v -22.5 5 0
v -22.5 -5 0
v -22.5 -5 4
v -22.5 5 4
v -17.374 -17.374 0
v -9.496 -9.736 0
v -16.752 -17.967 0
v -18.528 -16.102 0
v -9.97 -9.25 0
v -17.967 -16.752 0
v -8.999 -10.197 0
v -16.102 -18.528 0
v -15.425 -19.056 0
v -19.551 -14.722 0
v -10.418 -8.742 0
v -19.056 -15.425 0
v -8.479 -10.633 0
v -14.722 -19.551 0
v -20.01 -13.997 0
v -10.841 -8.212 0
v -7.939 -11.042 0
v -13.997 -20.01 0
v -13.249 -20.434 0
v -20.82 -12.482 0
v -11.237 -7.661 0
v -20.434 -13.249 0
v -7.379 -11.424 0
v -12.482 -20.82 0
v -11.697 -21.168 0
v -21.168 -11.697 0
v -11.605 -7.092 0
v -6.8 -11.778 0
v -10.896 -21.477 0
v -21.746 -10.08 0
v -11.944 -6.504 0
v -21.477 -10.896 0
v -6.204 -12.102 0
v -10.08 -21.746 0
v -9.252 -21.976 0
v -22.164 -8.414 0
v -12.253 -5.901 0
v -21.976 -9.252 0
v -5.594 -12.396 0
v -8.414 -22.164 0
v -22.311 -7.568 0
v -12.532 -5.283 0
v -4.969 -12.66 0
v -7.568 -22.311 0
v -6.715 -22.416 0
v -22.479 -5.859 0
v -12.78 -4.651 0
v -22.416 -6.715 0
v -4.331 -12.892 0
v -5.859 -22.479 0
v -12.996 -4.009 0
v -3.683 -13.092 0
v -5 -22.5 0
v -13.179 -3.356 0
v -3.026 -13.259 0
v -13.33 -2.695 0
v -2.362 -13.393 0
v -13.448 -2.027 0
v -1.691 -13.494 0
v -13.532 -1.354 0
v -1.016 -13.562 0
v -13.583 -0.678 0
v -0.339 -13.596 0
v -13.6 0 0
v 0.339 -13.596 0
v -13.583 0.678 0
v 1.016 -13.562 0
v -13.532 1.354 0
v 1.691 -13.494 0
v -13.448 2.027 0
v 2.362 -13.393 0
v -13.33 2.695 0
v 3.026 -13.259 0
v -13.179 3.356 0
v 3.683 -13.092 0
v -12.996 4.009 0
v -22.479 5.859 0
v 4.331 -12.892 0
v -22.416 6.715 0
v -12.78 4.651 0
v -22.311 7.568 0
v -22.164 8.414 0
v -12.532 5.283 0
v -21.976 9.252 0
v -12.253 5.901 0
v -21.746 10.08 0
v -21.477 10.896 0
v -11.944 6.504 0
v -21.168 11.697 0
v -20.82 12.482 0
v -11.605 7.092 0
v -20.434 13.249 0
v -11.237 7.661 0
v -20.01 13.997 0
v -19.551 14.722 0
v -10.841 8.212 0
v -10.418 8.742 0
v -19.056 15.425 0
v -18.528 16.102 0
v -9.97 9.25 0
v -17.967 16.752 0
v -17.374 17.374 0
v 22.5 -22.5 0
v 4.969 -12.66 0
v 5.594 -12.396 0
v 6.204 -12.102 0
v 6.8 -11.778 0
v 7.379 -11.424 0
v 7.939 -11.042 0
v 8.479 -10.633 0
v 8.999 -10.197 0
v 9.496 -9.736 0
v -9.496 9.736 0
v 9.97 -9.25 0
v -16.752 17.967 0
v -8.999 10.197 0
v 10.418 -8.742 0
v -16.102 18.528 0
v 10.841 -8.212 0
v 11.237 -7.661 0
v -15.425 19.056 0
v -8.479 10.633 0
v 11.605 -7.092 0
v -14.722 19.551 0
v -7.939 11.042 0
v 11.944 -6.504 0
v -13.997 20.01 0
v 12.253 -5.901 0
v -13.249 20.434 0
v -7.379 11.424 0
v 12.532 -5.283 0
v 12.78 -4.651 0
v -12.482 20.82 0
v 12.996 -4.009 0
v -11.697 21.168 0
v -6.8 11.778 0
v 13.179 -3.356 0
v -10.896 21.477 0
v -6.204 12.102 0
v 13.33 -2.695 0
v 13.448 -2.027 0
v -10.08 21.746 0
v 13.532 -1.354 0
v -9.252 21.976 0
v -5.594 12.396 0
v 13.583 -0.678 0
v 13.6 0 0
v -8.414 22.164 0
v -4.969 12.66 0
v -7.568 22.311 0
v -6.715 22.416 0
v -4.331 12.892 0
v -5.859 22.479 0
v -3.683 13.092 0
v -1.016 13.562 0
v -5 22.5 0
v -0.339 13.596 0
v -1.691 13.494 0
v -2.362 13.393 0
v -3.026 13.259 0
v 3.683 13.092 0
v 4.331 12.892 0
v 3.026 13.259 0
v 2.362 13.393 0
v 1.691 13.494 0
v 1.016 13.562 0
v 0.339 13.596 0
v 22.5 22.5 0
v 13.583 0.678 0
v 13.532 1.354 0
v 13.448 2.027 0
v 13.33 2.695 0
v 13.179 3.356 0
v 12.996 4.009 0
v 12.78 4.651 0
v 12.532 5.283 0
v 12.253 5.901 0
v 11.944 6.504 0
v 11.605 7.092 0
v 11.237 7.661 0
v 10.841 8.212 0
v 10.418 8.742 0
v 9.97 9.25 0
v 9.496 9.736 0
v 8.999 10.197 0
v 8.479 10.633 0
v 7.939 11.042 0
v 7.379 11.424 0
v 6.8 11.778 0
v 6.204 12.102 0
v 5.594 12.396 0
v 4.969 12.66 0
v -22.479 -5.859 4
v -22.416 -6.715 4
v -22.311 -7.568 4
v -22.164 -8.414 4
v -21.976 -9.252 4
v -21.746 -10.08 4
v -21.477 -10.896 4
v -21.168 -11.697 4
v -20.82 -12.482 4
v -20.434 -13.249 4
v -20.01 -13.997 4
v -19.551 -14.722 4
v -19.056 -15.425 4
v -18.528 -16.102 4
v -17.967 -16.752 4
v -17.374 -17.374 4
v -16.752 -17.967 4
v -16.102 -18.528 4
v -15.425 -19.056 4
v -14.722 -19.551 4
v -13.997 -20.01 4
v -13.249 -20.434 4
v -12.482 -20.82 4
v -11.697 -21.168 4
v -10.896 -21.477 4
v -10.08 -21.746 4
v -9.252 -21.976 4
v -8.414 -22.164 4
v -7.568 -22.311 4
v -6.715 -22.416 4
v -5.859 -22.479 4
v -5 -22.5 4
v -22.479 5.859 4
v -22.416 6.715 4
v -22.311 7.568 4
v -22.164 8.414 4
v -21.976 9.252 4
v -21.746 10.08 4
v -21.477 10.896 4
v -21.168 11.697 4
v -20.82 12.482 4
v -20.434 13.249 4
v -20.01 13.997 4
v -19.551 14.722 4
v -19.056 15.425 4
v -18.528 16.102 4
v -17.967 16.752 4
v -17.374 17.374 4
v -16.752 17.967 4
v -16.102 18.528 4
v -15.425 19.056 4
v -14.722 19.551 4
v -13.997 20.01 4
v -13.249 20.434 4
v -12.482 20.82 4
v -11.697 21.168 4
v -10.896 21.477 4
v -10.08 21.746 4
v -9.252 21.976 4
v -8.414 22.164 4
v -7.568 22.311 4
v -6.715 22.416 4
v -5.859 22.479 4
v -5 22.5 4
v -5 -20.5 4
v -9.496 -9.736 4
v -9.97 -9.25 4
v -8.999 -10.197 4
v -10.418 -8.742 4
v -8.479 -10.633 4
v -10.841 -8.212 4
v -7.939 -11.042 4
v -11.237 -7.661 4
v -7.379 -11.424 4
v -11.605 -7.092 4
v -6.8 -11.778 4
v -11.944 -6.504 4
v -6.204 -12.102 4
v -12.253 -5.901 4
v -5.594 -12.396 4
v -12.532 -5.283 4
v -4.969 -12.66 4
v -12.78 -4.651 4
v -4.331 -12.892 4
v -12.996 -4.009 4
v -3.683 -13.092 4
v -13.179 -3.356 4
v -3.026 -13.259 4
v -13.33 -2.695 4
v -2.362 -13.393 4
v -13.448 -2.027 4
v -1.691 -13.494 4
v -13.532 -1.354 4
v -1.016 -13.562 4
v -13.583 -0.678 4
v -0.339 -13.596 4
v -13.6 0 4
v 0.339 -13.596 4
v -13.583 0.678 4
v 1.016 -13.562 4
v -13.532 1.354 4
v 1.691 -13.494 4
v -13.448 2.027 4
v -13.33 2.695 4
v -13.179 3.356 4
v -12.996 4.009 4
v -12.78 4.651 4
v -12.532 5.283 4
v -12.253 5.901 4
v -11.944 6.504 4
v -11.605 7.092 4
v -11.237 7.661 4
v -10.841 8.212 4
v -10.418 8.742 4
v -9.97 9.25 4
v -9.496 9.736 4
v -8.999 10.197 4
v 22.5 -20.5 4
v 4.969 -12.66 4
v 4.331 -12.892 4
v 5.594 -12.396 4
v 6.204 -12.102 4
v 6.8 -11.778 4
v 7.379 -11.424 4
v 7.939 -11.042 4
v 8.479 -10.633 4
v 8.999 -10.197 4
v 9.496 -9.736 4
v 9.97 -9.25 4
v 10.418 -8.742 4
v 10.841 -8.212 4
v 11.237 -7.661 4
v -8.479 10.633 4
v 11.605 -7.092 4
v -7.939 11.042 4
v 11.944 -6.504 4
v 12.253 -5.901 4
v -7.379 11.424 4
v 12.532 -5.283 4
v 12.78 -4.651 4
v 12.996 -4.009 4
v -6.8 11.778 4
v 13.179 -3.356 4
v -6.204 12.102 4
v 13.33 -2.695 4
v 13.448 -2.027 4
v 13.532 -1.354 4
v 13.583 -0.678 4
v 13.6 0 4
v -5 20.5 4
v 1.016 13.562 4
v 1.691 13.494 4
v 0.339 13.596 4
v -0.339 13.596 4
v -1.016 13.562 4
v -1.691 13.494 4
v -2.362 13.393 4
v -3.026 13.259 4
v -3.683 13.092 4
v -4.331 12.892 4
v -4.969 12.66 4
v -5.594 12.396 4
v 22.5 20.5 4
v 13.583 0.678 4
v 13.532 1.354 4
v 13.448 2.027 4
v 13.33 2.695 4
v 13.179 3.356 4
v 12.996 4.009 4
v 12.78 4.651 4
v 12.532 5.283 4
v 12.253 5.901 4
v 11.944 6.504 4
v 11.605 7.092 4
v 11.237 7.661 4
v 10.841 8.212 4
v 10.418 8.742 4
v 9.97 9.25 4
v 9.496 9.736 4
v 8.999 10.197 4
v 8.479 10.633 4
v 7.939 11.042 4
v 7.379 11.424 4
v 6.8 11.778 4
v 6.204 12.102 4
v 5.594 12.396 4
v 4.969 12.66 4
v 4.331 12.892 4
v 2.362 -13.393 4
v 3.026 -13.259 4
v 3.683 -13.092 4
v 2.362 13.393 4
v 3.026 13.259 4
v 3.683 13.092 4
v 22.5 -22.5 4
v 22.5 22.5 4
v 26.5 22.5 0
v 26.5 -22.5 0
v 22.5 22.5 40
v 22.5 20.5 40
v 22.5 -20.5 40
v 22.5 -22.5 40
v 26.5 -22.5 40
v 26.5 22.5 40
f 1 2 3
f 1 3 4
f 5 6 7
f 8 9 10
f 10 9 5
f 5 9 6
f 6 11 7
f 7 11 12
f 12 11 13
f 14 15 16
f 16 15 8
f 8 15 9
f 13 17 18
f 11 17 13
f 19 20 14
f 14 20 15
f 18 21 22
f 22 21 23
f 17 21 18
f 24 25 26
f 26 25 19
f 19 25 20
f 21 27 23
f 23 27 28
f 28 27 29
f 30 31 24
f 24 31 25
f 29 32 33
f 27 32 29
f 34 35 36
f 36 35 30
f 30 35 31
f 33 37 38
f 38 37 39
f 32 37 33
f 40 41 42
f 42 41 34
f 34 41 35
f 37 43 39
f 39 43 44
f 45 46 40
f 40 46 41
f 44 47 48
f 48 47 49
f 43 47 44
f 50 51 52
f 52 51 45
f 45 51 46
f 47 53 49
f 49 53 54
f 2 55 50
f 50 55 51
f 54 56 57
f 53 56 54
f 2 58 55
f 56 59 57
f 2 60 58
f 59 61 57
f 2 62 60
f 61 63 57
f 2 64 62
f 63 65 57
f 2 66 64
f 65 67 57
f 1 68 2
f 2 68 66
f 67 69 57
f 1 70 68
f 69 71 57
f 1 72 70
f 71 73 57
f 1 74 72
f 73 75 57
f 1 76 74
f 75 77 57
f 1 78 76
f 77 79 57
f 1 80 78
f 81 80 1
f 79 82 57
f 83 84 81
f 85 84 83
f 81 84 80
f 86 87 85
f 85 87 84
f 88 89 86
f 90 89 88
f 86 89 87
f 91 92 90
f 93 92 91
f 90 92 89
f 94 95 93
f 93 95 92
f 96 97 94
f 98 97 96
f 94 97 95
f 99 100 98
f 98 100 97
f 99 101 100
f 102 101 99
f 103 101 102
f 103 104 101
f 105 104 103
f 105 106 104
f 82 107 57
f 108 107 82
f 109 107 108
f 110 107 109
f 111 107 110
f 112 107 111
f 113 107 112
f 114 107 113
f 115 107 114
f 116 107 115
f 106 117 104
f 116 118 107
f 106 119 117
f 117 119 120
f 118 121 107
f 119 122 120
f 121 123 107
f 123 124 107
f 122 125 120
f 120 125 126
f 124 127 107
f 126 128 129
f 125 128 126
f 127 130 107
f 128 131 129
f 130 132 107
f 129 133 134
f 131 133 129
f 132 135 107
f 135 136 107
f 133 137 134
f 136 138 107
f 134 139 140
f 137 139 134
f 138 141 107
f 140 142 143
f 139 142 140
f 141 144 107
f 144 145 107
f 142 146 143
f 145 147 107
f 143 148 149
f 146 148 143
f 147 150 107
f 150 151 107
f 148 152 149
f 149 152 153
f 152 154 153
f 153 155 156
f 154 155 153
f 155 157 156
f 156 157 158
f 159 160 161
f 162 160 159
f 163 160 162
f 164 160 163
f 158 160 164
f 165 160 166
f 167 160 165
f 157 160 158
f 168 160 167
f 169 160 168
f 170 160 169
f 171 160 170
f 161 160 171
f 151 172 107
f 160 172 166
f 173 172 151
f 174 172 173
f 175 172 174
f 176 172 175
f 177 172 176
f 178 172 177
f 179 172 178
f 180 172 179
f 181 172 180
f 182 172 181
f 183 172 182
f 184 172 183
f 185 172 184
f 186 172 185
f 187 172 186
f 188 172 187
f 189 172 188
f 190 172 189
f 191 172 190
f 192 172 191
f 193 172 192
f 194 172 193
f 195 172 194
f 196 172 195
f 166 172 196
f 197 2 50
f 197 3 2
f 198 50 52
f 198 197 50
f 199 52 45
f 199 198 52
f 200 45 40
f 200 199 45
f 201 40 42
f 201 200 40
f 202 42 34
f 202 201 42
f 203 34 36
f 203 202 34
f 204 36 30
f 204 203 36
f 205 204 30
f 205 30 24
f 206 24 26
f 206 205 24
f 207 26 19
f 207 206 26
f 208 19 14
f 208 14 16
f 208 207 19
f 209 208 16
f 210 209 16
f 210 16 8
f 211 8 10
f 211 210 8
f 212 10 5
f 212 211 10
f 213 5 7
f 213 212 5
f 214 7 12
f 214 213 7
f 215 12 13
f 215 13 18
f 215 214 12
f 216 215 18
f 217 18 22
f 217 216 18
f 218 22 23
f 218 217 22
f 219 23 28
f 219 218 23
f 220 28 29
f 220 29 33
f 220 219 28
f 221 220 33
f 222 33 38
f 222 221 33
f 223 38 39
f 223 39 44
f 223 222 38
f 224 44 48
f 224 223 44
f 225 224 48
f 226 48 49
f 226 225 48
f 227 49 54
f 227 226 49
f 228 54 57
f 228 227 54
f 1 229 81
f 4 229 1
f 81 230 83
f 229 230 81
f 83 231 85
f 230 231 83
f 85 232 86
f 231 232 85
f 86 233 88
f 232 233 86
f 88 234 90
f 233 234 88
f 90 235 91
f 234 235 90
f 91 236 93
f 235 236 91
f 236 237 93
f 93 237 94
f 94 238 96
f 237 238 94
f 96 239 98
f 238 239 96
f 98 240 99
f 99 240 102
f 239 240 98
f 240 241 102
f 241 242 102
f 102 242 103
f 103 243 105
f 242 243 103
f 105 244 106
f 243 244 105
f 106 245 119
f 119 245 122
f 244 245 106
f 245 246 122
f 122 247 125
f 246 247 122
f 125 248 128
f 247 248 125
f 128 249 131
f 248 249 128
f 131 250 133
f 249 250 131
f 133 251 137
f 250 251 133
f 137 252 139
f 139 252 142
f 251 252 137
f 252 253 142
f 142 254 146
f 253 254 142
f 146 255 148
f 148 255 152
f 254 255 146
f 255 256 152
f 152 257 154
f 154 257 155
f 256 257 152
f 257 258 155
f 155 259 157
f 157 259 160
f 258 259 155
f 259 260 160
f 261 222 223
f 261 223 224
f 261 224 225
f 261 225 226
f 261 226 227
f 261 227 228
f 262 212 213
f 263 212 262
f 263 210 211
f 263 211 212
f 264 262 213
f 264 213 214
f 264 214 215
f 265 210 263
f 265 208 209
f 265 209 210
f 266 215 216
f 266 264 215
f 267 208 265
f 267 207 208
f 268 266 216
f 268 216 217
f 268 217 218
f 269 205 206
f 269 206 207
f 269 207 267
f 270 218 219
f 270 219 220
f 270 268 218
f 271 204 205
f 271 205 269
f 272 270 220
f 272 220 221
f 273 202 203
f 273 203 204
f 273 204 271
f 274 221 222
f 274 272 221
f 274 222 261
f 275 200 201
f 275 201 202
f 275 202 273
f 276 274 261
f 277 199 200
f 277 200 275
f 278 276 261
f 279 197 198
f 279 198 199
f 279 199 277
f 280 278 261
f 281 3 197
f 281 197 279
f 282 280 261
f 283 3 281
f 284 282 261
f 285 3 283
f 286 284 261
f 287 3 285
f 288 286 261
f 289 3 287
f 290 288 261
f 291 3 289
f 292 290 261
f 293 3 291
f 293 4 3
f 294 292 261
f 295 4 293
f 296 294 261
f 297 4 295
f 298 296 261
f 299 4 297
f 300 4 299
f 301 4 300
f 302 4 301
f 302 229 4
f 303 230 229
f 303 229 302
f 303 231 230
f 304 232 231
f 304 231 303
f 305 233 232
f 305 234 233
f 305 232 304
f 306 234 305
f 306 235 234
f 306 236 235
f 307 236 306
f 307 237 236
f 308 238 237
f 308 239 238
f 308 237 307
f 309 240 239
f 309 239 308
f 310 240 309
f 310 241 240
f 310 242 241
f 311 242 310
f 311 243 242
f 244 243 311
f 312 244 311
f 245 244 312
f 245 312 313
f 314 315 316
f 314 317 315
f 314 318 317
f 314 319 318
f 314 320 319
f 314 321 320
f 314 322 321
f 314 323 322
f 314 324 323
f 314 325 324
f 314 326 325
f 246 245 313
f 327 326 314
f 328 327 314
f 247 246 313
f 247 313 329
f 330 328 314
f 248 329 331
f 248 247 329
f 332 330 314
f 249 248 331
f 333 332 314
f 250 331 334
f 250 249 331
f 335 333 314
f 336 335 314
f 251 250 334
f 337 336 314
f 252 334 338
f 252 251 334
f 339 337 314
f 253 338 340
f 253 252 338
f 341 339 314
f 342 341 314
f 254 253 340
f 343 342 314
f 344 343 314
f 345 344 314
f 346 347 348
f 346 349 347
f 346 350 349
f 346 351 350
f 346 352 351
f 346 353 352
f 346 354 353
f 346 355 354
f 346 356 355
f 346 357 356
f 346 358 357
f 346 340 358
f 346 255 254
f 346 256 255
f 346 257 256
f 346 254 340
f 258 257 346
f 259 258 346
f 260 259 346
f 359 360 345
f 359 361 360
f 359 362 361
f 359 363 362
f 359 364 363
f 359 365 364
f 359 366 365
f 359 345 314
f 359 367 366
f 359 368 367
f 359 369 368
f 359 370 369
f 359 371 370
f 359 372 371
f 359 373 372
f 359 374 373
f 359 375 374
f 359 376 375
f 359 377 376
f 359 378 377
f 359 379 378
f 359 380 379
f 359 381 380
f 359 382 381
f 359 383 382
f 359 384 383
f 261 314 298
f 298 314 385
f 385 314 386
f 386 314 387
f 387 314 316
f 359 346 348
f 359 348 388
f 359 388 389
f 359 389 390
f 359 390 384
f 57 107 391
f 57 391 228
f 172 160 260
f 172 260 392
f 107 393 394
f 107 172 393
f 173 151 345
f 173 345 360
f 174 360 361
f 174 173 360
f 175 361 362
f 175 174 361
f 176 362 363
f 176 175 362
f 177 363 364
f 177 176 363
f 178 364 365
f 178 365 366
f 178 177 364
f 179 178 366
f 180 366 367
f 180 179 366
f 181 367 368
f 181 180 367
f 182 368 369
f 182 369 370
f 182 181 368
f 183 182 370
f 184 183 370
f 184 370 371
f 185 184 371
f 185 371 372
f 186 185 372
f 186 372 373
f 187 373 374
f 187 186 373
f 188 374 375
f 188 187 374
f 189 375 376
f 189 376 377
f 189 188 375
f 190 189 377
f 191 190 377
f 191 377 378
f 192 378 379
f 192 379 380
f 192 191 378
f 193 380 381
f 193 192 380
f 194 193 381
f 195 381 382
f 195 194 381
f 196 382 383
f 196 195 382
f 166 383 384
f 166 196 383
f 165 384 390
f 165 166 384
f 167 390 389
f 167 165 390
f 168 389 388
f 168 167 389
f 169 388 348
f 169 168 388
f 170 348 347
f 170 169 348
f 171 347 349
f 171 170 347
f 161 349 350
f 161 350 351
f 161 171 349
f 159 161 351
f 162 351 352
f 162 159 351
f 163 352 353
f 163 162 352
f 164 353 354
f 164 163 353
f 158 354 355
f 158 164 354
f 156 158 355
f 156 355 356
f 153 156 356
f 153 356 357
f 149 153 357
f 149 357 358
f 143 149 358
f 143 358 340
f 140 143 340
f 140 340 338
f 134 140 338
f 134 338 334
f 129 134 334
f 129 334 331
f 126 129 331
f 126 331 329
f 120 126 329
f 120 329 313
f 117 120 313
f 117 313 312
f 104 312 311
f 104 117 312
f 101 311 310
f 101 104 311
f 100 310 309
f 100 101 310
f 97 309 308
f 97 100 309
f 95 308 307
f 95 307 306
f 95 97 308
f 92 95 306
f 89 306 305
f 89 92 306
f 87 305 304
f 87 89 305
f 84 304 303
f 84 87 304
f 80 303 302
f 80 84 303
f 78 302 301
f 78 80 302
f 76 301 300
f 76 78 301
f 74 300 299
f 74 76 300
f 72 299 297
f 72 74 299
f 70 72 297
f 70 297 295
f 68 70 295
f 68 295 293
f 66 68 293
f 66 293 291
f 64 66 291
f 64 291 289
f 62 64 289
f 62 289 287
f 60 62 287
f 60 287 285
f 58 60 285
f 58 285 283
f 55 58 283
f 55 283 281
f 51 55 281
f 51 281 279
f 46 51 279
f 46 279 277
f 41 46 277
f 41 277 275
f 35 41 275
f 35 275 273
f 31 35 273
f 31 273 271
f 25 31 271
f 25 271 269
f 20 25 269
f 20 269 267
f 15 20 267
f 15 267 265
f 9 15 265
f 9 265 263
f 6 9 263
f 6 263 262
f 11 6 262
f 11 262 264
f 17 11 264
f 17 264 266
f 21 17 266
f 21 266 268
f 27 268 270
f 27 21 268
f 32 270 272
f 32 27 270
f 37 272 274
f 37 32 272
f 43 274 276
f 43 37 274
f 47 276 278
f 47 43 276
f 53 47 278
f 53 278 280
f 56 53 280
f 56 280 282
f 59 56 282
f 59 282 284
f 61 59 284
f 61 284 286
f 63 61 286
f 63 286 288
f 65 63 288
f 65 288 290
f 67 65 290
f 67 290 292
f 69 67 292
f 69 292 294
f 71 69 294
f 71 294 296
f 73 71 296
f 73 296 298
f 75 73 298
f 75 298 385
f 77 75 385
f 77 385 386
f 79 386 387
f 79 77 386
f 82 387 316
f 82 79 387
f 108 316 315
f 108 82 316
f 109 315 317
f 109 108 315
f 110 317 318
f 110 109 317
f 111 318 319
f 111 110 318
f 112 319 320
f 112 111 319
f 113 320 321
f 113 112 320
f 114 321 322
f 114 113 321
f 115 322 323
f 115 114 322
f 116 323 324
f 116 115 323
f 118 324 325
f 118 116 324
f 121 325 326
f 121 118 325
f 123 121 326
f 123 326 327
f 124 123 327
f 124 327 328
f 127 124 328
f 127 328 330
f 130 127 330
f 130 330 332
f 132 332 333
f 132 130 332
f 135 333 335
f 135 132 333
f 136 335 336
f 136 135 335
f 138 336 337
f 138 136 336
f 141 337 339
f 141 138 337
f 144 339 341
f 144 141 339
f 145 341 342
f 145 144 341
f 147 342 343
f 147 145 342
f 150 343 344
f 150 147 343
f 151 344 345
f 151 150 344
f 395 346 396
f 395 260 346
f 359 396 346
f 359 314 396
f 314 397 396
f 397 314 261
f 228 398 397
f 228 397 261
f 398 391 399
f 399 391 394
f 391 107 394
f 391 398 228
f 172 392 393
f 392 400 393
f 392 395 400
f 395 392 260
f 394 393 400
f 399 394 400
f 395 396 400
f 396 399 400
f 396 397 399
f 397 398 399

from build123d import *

# Parameters (mm, degrees)
SKETCH_W     = 45
SKETCH_H     = 45
SKETCH_R     = 13.6
PAD_DEPTH    = 4
SKETCH001_W  = 45
SKETCH001_H  = 40
PAD001_DEPTH = 4
FILLET_R     = 17.5
PAD002_DEPTH = 2


with BuildPart() as part:
    # Sketch → Pad (new body)
    with BuildSketch(Plane.XY):
        Rectangle(SKETCH_W, SKETCH_H)
        Circle(SKETCH_R, mode=Mode.SUBTRACT)
    extrude(amount=PAD_DEPTH)

    # Sketch001 (on Face3 of Pad) → Pad001 (join)
    with BuildSketch(Plane.YZ.offset(22.5)):
        with Locations((0, 20)):
            Rectangle(SKETCH001_W, SKETCH001_H)
    extrude(amount=PAD001_DEPTH)

    # Fillet
    fillet_edges = [part.edges().sort_by_distance(p)[0] for p in [
        (-22.5, 22.5, 2),
        (-22.5, -22.5, 2),
    ]]
    fillet(fillet_edges, radius=FILLET_R)

    # Sketch002 (on Face6 of Fillet) → Pad002 (join)
    with BuildSketch(Plane.XZ.offset(22.5)):
        Polygon((-5, 4), (22.5, 4), (22.5, 40), align=None)
    pad002 = extrude(amount=-PAD002_DEPTH)

    # Mirrored: Pad002 across XZ
    add(pad002.mirror(Plane.XZ))


solid = part.part
